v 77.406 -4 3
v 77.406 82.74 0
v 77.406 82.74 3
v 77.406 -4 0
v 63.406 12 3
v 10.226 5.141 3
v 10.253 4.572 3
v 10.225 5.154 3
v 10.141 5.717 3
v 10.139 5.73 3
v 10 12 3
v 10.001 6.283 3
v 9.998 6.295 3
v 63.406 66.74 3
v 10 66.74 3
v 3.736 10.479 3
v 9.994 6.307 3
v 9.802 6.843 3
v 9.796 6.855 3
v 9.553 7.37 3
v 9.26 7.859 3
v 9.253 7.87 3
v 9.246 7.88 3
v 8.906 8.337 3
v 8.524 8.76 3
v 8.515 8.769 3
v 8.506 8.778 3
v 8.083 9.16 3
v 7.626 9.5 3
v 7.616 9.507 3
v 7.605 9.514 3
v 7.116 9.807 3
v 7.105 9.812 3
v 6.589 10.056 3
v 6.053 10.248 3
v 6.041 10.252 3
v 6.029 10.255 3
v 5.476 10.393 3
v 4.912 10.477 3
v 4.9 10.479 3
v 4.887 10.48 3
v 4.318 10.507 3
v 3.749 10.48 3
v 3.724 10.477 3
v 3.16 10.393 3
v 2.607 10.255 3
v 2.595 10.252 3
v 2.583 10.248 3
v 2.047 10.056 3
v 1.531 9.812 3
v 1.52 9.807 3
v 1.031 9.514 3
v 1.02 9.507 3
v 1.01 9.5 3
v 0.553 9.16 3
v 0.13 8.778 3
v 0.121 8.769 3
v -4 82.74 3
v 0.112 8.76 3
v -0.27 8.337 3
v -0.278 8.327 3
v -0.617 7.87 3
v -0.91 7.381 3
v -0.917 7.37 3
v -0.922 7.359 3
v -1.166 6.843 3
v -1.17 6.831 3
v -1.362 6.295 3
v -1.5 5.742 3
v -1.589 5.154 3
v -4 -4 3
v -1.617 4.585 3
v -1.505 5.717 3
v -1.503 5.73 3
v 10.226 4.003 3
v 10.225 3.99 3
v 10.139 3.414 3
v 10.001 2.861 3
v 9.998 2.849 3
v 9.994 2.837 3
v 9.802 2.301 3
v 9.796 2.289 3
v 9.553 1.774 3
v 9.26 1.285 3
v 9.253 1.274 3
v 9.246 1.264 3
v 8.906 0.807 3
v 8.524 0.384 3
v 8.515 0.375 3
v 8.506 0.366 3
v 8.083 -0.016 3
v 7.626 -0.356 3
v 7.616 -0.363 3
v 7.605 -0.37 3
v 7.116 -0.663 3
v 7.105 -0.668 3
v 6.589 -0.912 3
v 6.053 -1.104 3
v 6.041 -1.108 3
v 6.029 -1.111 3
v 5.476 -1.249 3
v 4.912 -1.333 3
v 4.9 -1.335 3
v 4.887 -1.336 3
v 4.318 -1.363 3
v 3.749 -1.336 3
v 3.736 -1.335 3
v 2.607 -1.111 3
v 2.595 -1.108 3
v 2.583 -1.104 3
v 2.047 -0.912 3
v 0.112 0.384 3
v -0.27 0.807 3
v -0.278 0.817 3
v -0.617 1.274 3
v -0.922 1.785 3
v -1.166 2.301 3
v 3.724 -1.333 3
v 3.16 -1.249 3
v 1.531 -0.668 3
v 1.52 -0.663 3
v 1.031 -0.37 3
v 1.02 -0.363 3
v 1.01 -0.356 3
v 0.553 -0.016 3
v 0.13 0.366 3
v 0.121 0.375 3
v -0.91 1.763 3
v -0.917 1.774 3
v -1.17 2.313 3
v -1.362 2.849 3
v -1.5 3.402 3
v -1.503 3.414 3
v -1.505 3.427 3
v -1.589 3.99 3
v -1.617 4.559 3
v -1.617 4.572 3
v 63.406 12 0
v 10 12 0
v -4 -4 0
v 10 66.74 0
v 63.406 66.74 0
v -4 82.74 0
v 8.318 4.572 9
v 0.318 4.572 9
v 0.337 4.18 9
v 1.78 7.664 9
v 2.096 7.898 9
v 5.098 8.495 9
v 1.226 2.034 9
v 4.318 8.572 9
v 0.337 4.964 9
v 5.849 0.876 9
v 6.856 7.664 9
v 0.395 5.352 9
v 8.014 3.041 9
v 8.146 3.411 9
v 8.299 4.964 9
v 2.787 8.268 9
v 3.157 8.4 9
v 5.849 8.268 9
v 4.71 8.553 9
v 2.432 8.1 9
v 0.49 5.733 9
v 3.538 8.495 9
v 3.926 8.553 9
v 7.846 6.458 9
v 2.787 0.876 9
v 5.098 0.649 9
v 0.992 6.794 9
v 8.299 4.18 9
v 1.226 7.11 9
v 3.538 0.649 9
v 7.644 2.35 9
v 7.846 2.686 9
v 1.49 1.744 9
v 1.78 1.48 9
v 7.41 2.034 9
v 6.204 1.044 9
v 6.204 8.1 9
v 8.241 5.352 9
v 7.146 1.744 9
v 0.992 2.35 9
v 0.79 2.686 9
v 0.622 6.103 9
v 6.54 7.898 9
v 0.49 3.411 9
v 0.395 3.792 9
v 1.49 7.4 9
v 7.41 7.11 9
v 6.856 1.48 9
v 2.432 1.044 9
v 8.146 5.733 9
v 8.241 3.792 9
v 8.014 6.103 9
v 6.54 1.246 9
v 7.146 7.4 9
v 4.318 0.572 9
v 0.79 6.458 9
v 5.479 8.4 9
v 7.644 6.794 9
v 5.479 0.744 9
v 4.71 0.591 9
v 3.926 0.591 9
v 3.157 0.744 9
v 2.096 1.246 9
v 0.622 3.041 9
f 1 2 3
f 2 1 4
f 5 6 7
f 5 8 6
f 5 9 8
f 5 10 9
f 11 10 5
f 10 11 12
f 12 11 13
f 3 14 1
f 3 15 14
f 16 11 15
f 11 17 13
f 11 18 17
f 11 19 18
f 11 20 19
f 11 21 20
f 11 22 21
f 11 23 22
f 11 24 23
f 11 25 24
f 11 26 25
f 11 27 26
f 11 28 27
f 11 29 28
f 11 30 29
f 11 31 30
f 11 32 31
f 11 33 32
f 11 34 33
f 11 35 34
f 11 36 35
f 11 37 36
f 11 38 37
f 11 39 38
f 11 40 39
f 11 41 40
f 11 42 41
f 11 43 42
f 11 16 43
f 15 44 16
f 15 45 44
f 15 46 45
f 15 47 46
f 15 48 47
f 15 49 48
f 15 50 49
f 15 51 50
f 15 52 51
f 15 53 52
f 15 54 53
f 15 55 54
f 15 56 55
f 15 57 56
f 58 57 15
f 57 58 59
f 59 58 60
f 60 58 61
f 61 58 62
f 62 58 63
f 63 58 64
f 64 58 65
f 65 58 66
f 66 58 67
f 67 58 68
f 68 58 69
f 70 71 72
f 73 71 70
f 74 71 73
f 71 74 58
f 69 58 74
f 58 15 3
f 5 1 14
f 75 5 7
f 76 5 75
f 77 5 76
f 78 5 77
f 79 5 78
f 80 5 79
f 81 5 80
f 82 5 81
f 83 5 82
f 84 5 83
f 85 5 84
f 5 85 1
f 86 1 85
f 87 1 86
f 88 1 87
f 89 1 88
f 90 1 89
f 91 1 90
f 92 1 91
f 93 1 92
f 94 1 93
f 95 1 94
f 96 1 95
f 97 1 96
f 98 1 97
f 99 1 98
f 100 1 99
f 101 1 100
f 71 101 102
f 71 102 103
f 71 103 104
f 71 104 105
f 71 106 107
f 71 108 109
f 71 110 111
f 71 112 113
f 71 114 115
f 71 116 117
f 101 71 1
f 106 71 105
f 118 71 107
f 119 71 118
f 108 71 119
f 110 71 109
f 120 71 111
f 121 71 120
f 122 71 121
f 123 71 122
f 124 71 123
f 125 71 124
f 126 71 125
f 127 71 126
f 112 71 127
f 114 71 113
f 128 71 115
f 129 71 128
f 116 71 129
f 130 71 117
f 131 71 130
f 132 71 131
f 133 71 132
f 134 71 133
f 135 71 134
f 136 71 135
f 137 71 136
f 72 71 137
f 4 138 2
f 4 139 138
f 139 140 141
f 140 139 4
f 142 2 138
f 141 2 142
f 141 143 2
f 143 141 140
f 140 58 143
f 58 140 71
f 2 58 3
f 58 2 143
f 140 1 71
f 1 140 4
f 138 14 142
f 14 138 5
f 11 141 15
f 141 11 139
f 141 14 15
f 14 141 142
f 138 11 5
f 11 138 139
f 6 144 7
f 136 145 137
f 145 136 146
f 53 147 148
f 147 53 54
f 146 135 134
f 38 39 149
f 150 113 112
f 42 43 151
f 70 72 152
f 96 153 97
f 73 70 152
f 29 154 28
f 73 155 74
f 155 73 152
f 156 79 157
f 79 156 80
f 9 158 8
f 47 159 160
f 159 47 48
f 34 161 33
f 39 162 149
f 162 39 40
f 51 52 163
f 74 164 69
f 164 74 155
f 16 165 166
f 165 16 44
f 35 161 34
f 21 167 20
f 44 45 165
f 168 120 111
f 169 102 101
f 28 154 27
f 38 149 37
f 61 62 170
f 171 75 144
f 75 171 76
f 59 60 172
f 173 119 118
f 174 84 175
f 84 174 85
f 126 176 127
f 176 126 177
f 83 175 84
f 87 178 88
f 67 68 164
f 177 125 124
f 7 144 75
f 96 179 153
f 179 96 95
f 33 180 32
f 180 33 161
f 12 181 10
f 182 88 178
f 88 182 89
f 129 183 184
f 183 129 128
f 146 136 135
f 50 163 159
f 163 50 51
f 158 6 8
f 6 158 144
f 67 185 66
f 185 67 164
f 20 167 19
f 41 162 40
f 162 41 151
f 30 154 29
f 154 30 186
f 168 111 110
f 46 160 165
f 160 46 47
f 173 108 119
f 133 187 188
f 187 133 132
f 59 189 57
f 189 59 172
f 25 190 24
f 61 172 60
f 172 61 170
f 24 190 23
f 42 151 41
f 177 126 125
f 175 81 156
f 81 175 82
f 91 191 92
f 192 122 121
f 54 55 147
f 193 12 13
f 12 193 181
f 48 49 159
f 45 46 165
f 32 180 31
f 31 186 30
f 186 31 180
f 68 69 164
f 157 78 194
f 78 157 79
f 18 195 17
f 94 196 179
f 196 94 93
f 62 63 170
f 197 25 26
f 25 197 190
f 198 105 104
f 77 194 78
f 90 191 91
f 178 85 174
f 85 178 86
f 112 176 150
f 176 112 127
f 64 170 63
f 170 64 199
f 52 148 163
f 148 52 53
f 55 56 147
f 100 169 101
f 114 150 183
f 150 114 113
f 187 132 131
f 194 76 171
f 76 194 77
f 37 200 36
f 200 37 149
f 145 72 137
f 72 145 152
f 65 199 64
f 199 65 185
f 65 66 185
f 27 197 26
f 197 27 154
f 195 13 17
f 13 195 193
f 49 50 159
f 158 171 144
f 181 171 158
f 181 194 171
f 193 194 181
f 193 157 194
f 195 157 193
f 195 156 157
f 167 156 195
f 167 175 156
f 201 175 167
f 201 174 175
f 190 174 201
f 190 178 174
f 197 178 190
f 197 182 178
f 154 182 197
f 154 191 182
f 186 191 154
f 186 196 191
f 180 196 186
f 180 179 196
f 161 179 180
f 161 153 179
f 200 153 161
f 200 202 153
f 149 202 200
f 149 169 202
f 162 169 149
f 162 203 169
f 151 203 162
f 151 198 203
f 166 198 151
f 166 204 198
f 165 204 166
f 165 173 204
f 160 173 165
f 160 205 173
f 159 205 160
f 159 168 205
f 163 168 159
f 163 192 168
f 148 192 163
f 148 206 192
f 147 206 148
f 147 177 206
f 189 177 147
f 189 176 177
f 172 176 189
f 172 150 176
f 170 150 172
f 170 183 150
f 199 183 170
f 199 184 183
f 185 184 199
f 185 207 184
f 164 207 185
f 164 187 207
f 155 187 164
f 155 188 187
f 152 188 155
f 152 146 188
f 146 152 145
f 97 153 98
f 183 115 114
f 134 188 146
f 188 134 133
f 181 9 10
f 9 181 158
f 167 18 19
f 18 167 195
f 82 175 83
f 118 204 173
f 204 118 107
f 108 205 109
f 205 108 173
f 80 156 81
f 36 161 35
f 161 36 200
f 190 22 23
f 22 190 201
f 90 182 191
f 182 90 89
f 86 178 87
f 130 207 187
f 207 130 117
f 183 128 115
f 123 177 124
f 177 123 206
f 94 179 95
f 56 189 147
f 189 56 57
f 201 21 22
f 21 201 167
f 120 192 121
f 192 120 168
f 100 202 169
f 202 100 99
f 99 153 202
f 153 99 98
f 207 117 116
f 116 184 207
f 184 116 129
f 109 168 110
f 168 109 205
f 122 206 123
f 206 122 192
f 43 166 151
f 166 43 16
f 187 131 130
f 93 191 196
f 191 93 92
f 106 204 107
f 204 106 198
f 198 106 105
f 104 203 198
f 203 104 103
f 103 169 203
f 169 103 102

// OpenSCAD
// Units: mm. PCB stand worked example.
union() {
  difference() {
    translate([-4, -4, 0])
      cube([81.406, 86.740, 3]);
    translate([10, 12, -0.1])
      cube([53.406, 54.740, 3.2]);
  }
  translate([4.318, 4.572, 2.8])
    cylinder(h=6.2, d1=12, d2=8, $fn=64);
}
